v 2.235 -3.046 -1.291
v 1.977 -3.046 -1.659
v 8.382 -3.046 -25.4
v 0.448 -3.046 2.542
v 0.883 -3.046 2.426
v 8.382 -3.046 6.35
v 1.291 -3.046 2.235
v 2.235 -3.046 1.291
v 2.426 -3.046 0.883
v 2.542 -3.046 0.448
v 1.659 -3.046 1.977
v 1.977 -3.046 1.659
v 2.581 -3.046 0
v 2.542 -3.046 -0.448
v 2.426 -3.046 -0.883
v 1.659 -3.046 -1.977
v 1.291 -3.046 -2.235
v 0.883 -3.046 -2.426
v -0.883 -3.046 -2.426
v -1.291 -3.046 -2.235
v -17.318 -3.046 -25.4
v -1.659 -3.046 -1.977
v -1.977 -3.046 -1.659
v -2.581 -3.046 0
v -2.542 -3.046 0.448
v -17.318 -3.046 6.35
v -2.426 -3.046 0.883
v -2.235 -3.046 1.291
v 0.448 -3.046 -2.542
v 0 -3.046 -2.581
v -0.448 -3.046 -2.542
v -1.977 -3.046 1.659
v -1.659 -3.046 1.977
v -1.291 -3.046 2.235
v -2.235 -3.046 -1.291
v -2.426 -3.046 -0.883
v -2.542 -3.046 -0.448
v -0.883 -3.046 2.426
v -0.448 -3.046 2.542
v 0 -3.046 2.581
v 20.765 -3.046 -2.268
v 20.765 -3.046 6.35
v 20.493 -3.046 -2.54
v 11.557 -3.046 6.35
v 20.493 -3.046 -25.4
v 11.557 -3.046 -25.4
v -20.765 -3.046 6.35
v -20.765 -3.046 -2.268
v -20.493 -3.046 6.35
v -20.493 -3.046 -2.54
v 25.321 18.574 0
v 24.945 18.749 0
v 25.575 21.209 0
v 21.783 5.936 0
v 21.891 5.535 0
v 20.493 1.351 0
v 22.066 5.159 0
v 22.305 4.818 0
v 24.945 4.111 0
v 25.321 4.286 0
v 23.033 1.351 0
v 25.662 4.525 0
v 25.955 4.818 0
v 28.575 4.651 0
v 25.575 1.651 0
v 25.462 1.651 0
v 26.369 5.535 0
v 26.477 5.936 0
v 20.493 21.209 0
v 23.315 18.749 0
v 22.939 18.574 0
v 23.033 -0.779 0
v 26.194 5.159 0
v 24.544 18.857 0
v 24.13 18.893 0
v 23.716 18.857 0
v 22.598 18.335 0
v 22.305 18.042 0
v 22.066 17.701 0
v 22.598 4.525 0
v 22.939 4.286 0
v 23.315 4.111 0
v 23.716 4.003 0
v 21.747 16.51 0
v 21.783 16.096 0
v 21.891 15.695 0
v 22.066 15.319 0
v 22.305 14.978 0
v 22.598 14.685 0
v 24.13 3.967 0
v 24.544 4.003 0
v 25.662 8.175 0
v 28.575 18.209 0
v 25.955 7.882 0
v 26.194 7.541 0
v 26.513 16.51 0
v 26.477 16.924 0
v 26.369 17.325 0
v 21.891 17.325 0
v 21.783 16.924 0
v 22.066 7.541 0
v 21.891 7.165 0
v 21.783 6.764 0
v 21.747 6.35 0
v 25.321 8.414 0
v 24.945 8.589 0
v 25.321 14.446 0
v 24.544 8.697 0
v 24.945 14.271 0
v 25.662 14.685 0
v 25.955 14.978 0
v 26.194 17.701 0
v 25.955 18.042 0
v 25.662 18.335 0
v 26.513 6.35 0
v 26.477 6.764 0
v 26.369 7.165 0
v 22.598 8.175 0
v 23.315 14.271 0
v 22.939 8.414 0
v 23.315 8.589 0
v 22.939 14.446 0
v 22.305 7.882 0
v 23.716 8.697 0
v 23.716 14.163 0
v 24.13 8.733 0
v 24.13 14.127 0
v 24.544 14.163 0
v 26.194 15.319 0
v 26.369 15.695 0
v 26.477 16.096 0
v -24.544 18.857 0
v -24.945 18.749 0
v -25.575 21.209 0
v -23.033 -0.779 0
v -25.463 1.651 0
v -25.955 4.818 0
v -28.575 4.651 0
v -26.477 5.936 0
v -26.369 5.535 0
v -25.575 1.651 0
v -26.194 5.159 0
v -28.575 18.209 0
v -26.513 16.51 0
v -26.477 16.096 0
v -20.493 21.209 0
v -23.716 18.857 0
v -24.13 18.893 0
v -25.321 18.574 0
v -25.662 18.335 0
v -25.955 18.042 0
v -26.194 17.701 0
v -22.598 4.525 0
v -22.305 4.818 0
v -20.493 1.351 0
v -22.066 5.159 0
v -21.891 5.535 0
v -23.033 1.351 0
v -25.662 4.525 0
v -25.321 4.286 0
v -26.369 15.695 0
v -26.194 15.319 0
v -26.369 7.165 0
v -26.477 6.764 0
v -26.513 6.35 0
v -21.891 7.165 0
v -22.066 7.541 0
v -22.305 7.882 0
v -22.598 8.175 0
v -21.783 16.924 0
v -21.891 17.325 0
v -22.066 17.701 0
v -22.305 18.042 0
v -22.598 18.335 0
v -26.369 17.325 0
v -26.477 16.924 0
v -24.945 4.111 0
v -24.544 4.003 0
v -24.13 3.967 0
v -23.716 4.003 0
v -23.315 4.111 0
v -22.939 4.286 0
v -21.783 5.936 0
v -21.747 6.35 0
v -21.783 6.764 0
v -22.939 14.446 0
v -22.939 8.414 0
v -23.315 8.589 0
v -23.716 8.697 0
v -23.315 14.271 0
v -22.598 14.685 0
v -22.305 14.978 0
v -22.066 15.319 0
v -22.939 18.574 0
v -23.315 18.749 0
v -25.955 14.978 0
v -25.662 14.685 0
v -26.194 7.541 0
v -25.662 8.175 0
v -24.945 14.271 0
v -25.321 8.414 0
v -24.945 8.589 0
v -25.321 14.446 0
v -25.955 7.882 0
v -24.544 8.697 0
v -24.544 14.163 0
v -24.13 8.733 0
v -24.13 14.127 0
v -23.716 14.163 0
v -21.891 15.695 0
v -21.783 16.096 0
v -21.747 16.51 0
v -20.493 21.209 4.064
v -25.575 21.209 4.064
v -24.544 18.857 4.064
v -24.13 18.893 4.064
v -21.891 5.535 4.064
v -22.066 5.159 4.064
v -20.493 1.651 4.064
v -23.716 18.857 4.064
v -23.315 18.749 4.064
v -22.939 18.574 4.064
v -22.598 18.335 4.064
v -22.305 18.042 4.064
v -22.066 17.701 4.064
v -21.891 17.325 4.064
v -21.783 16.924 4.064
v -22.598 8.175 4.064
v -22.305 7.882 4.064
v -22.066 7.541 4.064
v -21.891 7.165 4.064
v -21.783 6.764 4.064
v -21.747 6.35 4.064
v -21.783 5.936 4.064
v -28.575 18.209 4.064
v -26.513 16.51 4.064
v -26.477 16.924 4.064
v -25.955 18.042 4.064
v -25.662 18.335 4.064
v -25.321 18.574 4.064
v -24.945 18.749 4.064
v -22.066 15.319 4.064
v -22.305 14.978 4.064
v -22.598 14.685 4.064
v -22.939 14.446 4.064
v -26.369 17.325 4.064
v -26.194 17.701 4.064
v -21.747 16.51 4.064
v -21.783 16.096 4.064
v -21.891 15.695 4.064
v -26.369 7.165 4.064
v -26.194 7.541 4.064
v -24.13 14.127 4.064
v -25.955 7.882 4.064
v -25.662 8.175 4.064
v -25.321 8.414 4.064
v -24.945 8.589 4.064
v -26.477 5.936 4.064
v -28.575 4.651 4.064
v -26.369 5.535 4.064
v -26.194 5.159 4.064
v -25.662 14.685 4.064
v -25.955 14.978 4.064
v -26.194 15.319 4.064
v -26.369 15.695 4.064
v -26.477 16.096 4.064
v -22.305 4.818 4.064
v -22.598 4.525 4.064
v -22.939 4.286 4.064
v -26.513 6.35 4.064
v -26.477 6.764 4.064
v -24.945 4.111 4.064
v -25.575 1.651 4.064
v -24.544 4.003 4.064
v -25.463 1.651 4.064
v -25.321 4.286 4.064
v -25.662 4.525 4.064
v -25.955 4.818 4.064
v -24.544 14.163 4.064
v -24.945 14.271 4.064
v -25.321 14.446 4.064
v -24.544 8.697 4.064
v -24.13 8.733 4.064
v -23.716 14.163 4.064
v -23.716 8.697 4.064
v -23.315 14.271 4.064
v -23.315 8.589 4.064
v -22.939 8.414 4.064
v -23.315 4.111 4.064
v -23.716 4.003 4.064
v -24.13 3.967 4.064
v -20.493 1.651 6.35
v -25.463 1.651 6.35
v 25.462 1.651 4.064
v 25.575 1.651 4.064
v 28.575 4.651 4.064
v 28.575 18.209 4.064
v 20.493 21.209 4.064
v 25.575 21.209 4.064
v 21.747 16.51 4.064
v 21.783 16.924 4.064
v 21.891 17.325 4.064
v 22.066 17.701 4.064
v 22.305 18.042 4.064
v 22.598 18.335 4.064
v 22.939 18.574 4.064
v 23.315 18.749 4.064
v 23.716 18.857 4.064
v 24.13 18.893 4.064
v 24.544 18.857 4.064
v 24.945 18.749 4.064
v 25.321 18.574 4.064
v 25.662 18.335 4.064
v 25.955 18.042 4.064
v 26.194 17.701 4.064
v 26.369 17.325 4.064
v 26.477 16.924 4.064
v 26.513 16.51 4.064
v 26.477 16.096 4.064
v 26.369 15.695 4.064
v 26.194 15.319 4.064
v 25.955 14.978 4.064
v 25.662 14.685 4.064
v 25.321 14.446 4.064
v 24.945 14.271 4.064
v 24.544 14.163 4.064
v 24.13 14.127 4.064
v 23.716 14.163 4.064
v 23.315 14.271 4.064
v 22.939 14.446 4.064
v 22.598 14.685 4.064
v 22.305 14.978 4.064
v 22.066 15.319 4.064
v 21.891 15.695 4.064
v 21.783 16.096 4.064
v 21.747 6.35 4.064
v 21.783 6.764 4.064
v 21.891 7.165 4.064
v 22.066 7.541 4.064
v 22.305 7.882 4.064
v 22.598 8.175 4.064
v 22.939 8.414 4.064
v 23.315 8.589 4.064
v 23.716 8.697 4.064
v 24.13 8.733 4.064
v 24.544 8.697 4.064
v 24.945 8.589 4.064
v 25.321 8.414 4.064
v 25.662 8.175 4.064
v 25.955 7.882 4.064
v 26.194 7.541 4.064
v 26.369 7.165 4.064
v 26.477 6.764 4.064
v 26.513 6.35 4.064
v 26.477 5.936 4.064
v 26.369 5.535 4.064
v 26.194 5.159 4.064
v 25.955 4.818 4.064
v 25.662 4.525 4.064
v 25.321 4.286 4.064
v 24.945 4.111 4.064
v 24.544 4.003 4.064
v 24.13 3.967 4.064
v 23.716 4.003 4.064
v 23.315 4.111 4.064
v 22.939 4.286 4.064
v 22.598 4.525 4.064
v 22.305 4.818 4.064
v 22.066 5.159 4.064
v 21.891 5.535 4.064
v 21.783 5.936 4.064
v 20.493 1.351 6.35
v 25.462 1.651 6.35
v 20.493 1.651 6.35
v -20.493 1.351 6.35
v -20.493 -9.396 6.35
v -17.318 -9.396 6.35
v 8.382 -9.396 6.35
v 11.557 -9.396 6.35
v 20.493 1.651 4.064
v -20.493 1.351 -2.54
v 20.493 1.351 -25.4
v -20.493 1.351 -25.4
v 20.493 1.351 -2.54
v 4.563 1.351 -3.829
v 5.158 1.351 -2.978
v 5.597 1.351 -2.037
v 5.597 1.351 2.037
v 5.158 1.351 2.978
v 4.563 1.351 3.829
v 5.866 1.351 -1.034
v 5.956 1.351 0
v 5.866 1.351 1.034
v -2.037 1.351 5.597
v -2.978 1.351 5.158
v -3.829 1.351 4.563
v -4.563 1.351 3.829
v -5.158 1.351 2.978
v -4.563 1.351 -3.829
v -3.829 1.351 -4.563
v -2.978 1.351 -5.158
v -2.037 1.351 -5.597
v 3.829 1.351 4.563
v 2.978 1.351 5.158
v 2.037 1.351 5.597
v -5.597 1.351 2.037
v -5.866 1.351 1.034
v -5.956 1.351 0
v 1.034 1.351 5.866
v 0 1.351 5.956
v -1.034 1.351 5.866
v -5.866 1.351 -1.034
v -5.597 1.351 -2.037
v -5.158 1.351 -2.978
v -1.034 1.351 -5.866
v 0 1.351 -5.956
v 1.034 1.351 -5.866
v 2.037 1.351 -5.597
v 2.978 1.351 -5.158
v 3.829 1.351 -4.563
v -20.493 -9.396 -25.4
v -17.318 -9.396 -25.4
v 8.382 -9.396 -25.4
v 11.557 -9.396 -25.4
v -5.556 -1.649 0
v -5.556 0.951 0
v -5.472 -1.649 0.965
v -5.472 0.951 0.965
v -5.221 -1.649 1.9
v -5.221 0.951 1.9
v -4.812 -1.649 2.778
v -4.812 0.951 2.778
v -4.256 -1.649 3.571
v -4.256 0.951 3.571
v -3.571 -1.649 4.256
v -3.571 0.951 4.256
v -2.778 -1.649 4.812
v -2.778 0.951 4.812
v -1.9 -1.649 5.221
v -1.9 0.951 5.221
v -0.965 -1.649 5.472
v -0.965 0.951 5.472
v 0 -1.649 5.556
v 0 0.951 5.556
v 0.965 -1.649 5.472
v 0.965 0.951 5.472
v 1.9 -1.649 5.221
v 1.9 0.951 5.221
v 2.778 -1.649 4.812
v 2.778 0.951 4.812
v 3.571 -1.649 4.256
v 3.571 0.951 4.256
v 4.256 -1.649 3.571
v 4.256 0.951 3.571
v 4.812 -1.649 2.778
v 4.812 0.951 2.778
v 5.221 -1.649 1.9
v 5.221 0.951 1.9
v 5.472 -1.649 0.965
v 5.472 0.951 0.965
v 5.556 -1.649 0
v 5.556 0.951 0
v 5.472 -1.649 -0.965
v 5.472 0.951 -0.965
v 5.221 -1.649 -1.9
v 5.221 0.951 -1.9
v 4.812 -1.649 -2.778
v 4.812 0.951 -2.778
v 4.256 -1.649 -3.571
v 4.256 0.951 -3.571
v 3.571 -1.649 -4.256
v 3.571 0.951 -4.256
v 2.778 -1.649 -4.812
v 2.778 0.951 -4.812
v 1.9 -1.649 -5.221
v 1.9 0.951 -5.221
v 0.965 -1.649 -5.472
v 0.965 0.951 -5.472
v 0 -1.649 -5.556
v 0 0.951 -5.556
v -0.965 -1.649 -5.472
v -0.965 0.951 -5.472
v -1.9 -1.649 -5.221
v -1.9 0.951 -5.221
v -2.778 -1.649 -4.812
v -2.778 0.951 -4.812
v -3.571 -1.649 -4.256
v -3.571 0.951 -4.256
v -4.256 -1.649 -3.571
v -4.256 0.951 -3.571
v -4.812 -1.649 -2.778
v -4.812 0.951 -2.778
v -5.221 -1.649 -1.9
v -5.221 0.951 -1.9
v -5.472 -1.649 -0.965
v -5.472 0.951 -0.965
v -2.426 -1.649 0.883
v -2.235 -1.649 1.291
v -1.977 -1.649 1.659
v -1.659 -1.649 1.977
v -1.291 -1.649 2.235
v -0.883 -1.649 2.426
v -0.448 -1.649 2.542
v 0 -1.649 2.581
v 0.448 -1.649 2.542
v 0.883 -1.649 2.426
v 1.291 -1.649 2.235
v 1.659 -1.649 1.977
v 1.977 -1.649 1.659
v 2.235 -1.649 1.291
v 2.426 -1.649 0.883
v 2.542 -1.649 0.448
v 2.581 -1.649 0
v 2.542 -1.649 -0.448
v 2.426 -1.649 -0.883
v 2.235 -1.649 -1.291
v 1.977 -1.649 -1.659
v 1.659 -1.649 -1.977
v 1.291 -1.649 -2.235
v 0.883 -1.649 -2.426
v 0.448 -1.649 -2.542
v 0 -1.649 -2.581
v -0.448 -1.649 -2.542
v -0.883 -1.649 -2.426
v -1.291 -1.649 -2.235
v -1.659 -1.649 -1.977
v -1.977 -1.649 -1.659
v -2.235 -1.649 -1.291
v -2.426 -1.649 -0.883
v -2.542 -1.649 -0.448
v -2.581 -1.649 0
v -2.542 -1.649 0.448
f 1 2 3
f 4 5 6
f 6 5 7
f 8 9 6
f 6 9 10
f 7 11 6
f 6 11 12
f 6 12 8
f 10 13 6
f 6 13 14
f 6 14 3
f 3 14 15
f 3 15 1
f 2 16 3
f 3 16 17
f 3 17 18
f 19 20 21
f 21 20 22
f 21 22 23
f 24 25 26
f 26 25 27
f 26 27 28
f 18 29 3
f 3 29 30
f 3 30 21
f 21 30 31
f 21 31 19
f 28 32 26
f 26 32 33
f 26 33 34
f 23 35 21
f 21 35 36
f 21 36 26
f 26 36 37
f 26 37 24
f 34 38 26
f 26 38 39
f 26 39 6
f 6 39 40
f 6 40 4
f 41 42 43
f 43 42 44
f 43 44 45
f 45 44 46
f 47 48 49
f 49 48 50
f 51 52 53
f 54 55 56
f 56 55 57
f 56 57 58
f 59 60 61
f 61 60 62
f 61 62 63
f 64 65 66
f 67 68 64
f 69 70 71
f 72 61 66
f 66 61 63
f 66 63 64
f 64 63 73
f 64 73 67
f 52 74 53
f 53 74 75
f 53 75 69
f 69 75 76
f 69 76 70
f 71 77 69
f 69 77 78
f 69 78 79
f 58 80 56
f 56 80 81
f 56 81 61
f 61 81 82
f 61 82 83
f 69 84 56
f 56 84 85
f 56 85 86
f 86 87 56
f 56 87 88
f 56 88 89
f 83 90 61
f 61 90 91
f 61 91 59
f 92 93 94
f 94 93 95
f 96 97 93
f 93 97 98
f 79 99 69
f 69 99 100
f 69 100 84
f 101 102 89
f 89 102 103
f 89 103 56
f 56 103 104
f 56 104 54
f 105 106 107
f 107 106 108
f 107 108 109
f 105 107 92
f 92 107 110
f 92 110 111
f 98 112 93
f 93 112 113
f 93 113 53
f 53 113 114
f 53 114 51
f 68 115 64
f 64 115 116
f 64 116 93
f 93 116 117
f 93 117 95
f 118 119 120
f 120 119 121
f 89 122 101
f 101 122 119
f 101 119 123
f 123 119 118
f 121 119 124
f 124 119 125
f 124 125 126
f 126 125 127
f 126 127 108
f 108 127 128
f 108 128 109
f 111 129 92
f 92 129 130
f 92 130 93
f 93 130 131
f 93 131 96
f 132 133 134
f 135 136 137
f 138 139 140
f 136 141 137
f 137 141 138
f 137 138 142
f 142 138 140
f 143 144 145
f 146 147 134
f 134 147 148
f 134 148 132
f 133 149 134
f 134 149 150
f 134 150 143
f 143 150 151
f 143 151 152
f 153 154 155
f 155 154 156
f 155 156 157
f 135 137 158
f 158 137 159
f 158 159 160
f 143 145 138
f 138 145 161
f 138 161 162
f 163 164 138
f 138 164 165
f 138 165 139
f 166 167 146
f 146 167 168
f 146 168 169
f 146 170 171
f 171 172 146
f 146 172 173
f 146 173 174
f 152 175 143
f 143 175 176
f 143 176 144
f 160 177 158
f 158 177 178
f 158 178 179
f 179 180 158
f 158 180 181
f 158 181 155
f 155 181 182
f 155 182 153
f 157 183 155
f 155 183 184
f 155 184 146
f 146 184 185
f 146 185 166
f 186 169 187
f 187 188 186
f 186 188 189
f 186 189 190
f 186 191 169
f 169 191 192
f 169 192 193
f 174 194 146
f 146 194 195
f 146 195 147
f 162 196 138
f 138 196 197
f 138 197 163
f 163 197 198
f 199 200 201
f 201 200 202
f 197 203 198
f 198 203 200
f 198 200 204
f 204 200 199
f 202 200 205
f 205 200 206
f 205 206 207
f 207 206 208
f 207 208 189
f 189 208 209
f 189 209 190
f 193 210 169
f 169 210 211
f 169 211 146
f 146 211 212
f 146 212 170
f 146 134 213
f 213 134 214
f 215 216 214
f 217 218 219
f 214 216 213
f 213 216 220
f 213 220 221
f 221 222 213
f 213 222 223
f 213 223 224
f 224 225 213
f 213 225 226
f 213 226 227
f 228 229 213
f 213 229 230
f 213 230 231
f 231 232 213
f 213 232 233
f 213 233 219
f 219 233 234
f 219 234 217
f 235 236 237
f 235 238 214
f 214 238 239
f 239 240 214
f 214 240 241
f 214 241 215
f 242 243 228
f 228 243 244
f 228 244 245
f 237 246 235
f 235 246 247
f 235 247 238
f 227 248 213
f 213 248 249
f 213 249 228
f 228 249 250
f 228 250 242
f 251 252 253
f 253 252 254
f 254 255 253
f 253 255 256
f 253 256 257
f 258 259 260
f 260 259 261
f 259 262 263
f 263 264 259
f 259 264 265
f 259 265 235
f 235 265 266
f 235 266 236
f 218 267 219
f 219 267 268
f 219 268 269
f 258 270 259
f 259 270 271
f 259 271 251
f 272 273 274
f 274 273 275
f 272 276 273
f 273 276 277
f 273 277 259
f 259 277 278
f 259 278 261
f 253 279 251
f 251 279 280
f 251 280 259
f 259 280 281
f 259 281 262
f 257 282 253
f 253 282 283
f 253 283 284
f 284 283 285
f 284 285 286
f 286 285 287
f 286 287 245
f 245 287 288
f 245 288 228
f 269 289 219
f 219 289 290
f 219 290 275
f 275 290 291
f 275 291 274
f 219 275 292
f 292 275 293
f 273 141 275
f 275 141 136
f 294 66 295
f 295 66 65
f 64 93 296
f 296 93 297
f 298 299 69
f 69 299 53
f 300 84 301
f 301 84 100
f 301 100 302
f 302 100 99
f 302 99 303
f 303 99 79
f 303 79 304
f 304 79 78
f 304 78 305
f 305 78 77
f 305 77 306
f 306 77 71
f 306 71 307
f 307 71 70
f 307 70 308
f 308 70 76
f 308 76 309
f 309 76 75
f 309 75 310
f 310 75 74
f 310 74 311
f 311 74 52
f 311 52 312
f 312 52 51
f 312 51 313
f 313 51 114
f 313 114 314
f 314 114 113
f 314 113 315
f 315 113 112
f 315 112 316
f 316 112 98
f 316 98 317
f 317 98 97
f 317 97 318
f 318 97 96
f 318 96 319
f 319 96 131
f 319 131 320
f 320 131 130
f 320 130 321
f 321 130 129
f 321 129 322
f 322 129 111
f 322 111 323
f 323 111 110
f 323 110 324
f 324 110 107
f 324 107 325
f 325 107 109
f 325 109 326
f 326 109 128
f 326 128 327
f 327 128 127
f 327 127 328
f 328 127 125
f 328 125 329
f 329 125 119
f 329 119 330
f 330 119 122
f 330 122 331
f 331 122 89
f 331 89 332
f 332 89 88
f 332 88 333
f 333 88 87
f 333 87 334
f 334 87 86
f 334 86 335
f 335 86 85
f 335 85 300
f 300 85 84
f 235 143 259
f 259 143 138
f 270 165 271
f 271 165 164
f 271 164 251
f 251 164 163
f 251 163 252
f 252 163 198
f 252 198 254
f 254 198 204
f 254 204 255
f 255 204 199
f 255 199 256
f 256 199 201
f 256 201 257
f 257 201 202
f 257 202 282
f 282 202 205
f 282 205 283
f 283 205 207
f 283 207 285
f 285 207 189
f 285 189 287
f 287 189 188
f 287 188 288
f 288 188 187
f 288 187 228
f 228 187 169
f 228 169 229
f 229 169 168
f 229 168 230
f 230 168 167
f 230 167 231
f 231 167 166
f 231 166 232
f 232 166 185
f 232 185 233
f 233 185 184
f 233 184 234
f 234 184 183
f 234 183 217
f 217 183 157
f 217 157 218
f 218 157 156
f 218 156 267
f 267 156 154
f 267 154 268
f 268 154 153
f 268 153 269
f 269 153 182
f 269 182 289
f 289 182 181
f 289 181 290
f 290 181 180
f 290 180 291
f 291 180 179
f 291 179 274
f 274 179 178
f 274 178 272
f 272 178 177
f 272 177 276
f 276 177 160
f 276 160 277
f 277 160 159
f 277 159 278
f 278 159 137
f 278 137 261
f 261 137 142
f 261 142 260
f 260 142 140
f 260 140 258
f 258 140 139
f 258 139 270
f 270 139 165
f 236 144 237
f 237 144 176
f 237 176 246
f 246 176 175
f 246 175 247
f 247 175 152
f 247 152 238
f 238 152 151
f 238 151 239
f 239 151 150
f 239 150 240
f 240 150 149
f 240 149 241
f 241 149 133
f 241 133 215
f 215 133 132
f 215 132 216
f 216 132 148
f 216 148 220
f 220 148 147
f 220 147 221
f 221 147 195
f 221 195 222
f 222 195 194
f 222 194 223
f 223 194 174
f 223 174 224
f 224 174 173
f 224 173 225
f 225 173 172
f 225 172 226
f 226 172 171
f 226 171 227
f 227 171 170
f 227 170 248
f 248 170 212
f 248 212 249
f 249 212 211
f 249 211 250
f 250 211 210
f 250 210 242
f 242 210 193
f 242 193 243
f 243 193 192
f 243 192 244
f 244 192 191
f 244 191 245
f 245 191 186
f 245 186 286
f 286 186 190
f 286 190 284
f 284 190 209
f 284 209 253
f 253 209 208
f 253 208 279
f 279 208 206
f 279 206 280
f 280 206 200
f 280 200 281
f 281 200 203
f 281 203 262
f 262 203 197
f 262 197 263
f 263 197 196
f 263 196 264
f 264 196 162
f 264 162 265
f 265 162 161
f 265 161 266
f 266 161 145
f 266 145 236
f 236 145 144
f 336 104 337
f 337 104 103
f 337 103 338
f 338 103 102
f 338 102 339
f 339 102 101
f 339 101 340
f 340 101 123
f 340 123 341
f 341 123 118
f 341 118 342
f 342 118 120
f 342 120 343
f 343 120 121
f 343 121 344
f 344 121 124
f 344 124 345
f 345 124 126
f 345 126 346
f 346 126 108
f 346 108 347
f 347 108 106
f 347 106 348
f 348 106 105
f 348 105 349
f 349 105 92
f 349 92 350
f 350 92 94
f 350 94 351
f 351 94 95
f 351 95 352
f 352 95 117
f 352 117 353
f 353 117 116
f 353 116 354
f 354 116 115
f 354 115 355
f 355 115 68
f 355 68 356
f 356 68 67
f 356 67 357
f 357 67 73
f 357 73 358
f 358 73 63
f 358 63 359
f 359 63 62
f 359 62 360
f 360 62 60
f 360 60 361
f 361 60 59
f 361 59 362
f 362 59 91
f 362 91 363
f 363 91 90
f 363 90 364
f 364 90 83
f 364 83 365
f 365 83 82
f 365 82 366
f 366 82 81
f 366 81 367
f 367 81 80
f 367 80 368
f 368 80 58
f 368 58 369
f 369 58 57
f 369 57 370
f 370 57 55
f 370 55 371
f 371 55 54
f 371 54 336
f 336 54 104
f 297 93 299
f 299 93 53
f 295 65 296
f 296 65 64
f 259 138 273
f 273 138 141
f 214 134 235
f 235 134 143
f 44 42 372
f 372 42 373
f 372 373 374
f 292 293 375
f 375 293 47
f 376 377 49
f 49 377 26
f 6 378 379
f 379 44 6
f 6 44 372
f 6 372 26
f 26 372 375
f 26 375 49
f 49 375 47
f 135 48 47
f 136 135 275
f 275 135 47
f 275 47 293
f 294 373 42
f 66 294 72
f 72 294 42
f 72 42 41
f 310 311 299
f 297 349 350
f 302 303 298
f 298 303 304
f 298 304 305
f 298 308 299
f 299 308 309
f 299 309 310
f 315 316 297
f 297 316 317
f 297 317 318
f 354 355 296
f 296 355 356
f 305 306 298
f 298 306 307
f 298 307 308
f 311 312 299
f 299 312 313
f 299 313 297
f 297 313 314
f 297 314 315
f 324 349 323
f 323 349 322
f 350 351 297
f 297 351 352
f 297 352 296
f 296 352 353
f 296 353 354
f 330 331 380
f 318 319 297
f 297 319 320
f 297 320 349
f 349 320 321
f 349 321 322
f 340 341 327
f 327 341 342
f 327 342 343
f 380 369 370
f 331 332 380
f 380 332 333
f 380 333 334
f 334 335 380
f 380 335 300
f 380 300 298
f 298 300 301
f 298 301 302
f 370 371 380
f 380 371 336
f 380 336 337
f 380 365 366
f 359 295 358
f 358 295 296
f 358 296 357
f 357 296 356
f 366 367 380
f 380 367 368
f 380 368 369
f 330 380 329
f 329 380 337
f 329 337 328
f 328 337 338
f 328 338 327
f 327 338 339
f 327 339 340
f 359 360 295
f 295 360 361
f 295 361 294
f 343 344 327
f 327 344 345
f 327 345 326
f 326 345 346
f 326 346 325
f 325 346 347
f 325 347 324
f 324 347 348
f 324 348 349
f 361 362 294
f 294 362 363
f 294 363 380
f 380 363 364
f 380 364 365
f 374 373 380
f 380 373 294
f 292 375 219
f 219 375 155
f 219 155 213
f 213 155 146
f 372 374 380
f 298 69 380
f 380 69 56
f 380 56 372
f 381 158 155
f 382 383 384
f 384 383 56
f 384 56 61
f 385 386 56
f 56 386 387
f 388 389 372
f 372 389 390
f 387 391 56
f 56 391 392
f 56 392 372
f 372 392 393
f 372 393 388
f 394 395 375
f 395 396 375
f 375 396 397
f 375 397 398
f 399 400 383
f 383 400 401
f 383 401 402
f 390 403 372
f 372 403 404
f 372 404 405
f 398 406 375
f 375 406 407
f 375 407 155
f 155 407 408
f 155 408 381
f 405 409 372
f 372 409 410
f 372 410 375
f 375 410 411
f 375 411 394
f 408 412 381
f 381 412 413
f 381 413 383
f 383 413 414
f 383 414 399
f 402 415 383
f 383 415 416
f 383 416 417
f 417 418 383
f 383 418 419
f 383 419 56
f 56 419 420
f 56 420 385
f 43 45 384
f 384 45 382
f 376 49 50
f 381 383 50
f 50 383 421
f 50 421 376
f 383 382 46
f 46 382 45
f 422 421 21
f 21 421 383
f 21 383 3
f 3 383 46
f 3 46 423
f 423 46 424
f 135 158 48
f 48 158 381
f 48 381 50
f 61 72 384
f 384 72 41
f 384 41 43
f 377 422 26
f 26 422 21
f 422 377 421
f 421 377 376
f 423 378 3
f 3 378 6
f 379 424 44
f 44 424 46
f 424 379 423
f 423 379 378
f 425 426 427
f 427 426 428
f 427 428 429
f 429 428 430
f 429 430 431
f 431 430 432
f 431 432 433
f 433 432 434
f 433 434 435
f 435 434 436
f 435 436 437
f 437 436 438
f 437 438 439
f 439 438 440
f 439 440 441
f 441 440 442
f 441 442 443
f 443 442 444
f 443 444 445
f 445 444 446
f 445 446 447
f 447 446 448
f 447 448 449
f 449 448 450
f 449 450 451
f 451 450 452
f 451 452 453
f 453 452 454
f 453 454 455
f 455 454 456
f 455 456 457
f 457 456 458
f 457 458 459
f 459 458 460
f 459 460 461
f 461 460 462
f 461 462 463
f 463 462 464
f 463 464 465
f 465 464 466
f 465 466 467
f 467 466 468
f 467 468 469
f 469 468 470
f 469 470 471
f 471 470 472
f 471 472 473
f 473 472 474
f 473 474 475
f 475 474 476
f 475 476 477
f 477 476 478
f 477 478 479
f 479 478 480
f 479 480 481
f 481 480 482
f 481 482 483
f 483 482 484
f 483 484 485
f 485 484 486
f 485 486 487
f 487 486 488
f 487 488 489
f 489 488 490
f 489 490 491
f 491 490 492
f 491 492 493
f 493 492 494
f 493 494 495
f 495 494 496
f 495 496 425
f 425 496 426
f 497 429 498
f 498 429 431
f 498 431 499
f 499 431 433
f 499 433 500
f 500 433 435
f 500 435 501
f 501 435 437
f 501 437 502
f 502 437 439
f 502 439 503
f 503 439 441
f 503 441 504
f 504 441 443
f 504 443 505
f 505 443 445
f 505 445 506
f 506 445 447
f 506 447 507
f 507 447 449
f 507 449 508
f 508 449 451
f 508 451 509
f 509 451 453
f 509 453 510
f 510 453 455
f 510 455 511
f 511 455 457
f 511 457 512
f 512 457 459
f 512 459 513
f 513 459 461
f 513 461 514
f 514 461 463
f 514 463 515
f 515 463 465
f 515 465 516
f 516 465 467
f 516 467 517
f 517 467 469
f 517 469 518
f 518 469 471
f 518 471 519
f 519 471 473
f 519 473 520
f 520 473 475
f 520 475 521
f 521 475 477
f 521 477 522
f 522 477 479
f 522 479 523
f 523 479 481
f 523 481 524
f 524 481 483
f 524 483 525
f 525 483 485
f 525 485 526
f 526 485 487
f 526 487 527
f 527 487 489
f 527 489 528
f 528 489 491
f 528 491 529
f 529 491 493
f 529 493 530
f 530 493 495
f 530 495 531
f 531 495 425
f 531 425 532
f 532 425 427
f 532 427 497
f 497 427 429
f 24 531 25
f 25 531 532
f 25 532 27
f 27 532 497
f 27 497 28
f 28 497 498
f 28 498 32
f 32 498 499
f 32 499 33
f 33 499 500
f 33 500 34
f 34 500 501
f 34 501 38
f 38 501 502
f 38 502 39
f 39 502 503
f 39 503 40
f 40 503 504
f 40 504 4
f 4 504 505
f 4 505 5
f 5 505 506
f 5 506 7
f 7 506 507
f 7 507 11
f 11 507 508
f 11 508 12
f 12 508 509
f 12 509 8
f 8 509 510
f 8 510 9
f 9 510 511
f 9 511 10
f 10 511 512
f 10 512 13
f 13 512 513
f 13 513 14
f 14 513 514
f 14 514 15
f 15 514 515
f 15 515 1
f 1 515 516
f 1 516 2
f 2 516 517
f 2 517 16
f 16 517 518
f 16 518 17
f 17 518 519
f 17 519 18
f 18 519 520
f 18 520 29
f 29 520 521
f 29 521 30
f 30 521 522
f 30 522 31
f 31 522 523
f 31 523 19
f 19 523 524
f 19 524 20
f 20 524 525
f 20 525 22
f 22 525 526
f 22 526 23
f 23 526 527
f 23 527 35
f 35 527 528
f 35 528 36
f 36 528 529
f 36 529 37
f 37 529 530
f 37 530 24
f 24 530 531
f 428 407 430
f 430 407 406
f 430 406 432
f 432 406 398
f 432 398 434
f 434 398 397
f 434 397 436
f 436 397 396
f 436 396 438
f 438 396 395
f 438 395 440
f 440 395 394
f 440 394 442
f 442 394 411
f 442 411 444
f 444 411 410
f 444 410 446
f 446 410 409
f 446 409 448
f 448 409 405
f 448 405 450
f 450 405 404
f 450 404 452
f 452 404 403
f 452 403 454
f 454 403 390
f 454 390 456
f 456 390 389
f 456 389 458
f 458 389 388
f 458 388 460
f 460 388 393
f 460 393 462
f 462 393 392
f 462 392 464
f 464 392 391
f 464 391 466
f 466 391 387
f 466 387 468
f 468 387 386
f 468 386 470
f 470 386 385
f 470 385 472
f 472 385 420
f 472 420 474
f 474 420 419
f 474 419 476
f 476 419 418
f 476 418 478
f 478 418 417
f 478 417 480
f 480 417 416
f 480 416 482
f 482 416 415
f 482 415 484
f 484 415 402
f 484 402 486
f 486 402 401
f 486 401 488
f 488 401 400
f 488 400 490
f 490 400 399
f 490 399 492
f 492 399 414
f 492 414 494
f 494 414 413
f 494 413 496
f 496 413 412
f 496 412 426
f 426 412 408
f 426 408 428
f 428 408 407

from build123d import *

# Parameters (mm, degrees)
SKETCH1_R               = 3.475
SKETCH1_R_2             = 2.3828
BOSS_EXTRUDE1_DEPTH     = 6.35
CHAMFER1_SIZE           = 3
CHAMFER2_SIZE           = 8
CUT_EXTRUDE1_DEPTH      = 2.286
CUT_EXTRUDE2_DEPTH      = 36.817152344
CUT_EXTRUDE2_DEPTH_BACK = 36.817152344
SKETCH4_W               = 40.986
SKETCH4_H               = 20.158
SKETCH6_W               = 57.000074061
SKETCH6_H               = 19.05
CUT_EXTRUDE3_DEPTH      = 37.147957148
SKETCH9_W               = 40.986
SKETCH9_H               = 4.397387502
BOSS_EXTRUDE2_DEPTH     = 25.4
CHAMFER3_SIZE           = 2.54
SKETCH10_W              = 3.175
SKETCH10_H              = 31.75
BOSS_EXTRUDE3_DEPTH     = 6.35
SKETCH11_R              = 5.55625
CUT_EXTRUDE4_DEPTH      = 3
SKETCH14_R              = 2.58125
CUT_EXTRUDE10_DEPTH     = 6.35
CHAMFER4_SIZE           = 0.4


with BuildPart() as part:
    # Sketch1 → Boss-Extrude1 (new body)
    with BuildSketch(Plane.XY):
        Polygon((17.4625, -21.209), (-17.4625, -21.209), (-17.4625, 1.651), (-28.575, 1.651), (-28.575, 21.209), (28.575, 21.209), (28.575, 1.651), (17.4625, 1.651), align=None)
        with Locations((-9.525, -10.541)):
            Circle(SKETCH1_R, mode=Mode.SUBTRACT)
        with Locations((9.525, -10.541)):
            Circle(SKETCH1_R, mode=Mode.SUBTRACT)
        with Locations((-24.13, 6.35)):
            Circle(SKETCH1_R_2, mode=Mode.SUBTRACT)
        with Locations((-24.13, 16.51)):
            Circle(SKETCH1_R_2, mode=Mode.SUBTRACT)
        with Locations((24.13, 16.51)):
            Circle(SKETCH1_R_2, mode=Mode.SUBTRACT)
        with Locations((24.13, 6.35)):
            Circle(SKETCH1_R_2, mode=Mode.SUBTRACT)
    extrude(amount=BOSS_EXTRUDE1_DEPTH)

    # Chamfer1
    chamfer1_edges = [part.edges().sort_by_distance(p)[0] for p in [
        (-28.575, 1.651, 3.175),
        (-28.575, 21.209, 3.175),
        (28.575, 21.209, 3.175),
        (28.575, 1.651, 3.175),
        (17.4625, -21.209, 3.175),
        (-17.4625, -21.209, 3.175),
    ]]
    chamfer(chamfer1_edges, length=CHAMFER1_SIZE)

    # Chamfer2
    chamfer2_edges = [part.edges().sort_by_distance(p)[0] for p in [
        (17.4625, 1.651, 3.175),
        (-17.4625, 1.651, 3.175),
    ]]
    chamfer(chamfer2_edges, length=CHAMFER2_SIZE)

    # Sketch3 → Cut-Extrude1 (cut)
    with BuildSketch(Plane.XY.offset(6.35)):
        Polygon((-25.4625, 1.651), (25.4625, 1.651), (25.575, 1.651), (28.575, 4.651), (28.575, 18.209), (25.575, 21.209), (-25.575, 21.209), (-28.575, 18.209), (-28.575, 4.651), (-25.575, 1.651), align=None)
    extrude(amount=-CUT_EXTRUDE1_DEPTH, mode=Mode.SUBTRACT)

    # Sketch4 → Cut-Extrude2 (cut, two sides: drawn at the far end of the back side and taken through both)
    with BuildSketch(Plane.XY.offset(4.064).offset(-CUT_EXTRUDE2_DEPTH_BACK)):
        with Locations((0, 11.43)):
            Rectangle(SKETCH4_W, SKETCH4_H)
    extrude(amount=CUT_EXTRUDE2_DEPTH + CUT_EXTRUDE2_DEPTH_BACK, mode=Mode.SUBTRACT)

    # Sketch6 → Cut-Extrude3 (cut, through all)
    with BuildSketch(Plane.XY.offset(6.35)):
        with Locations((-1.923625946, -12.571387502)):
            Rectangle(SKETCH6_W, SKETCH6_H)
    extrude(amount=-CUT_EXTRUDE3_DEPTH, mode=Mode.SUBTRACT)

    # Sketch9 → Boss-Extrude2 (add)
    with BuildSketch(Plane(origin=(0, 0, 0), x_dir=(-1, 0, 0), z_dir=(0, 0, -1))):
        with Locations((0, -0.847693751)):
            Rectangle(SKETCH9_W, SKETCH9_H)
    extrude(amount=BOSS_EXTRUDE2_DEPTH)

    # Chamfer3
    chamfer3_edges = [part.edges().sort_by_distance(p)[0] for p in [
        (-20.493, -0.847693751, 0),
        (20.493, -0.847693751, 0),
    ]]
    chamfer(chamfer3_edges, length=CHAMFER3_SIZE)

    # Sketch10 → Boss-Extrude3 (add)
    with BuildSketch(Plane(origin=(0, -3.046387502, 0), x_dir=(-1, 0, 0), z_dir=(0, -1, 0))):
        with Locations((18.9055, 9.525)):
            Rectangle(SKETCH10_W, SKETCH10_H)
        with Locations((-9.9695, 9.525)):
            Rectangle(SKETCH10_W, SKETCH10_H)
    extrude(amount=BOSS_EXTRUDE3_DEPTH)

    # Sketch11 → Cut-Extrude4 (cut)
    with BuildSketch(Plane(origin=(0, 1.351, 0), x_dir=(1, 0, 0), z_dir=(0, 1, 0))):
        with Locations(Location((0, 0, 0), (0, 0, 180))):
            Circle(SKETCH11_R)
    extrude(amount=-CUT_EXTRUDE4_DEPTH, mode=Mode.SUBTRACT)

    # Sketch14 → Cut-Extrude10 (cut)
    with BuildSketch(Plane(origin=(0, -1.649, 0), x_dir=(1, 0, 0), z_dir=(0, 1, 0))):
        with Locations(Location((0, 0, 0), (0, 0, 180))):
            Circle(SKETCH14_R)
    extrude(amount=-CUT_EXTRUDE10_DEPTH, mode=Mode.SUBTRACT)

    # Chamfer4
    chamfer4_edges = [part.edges().sort_by_distance(p)[0] for p in [
        (5.55625, 1.351, 0),
    ]]
    chamfer(chamfer4_edges, length=CHAMFER4_SIZE)


solid = part.part
